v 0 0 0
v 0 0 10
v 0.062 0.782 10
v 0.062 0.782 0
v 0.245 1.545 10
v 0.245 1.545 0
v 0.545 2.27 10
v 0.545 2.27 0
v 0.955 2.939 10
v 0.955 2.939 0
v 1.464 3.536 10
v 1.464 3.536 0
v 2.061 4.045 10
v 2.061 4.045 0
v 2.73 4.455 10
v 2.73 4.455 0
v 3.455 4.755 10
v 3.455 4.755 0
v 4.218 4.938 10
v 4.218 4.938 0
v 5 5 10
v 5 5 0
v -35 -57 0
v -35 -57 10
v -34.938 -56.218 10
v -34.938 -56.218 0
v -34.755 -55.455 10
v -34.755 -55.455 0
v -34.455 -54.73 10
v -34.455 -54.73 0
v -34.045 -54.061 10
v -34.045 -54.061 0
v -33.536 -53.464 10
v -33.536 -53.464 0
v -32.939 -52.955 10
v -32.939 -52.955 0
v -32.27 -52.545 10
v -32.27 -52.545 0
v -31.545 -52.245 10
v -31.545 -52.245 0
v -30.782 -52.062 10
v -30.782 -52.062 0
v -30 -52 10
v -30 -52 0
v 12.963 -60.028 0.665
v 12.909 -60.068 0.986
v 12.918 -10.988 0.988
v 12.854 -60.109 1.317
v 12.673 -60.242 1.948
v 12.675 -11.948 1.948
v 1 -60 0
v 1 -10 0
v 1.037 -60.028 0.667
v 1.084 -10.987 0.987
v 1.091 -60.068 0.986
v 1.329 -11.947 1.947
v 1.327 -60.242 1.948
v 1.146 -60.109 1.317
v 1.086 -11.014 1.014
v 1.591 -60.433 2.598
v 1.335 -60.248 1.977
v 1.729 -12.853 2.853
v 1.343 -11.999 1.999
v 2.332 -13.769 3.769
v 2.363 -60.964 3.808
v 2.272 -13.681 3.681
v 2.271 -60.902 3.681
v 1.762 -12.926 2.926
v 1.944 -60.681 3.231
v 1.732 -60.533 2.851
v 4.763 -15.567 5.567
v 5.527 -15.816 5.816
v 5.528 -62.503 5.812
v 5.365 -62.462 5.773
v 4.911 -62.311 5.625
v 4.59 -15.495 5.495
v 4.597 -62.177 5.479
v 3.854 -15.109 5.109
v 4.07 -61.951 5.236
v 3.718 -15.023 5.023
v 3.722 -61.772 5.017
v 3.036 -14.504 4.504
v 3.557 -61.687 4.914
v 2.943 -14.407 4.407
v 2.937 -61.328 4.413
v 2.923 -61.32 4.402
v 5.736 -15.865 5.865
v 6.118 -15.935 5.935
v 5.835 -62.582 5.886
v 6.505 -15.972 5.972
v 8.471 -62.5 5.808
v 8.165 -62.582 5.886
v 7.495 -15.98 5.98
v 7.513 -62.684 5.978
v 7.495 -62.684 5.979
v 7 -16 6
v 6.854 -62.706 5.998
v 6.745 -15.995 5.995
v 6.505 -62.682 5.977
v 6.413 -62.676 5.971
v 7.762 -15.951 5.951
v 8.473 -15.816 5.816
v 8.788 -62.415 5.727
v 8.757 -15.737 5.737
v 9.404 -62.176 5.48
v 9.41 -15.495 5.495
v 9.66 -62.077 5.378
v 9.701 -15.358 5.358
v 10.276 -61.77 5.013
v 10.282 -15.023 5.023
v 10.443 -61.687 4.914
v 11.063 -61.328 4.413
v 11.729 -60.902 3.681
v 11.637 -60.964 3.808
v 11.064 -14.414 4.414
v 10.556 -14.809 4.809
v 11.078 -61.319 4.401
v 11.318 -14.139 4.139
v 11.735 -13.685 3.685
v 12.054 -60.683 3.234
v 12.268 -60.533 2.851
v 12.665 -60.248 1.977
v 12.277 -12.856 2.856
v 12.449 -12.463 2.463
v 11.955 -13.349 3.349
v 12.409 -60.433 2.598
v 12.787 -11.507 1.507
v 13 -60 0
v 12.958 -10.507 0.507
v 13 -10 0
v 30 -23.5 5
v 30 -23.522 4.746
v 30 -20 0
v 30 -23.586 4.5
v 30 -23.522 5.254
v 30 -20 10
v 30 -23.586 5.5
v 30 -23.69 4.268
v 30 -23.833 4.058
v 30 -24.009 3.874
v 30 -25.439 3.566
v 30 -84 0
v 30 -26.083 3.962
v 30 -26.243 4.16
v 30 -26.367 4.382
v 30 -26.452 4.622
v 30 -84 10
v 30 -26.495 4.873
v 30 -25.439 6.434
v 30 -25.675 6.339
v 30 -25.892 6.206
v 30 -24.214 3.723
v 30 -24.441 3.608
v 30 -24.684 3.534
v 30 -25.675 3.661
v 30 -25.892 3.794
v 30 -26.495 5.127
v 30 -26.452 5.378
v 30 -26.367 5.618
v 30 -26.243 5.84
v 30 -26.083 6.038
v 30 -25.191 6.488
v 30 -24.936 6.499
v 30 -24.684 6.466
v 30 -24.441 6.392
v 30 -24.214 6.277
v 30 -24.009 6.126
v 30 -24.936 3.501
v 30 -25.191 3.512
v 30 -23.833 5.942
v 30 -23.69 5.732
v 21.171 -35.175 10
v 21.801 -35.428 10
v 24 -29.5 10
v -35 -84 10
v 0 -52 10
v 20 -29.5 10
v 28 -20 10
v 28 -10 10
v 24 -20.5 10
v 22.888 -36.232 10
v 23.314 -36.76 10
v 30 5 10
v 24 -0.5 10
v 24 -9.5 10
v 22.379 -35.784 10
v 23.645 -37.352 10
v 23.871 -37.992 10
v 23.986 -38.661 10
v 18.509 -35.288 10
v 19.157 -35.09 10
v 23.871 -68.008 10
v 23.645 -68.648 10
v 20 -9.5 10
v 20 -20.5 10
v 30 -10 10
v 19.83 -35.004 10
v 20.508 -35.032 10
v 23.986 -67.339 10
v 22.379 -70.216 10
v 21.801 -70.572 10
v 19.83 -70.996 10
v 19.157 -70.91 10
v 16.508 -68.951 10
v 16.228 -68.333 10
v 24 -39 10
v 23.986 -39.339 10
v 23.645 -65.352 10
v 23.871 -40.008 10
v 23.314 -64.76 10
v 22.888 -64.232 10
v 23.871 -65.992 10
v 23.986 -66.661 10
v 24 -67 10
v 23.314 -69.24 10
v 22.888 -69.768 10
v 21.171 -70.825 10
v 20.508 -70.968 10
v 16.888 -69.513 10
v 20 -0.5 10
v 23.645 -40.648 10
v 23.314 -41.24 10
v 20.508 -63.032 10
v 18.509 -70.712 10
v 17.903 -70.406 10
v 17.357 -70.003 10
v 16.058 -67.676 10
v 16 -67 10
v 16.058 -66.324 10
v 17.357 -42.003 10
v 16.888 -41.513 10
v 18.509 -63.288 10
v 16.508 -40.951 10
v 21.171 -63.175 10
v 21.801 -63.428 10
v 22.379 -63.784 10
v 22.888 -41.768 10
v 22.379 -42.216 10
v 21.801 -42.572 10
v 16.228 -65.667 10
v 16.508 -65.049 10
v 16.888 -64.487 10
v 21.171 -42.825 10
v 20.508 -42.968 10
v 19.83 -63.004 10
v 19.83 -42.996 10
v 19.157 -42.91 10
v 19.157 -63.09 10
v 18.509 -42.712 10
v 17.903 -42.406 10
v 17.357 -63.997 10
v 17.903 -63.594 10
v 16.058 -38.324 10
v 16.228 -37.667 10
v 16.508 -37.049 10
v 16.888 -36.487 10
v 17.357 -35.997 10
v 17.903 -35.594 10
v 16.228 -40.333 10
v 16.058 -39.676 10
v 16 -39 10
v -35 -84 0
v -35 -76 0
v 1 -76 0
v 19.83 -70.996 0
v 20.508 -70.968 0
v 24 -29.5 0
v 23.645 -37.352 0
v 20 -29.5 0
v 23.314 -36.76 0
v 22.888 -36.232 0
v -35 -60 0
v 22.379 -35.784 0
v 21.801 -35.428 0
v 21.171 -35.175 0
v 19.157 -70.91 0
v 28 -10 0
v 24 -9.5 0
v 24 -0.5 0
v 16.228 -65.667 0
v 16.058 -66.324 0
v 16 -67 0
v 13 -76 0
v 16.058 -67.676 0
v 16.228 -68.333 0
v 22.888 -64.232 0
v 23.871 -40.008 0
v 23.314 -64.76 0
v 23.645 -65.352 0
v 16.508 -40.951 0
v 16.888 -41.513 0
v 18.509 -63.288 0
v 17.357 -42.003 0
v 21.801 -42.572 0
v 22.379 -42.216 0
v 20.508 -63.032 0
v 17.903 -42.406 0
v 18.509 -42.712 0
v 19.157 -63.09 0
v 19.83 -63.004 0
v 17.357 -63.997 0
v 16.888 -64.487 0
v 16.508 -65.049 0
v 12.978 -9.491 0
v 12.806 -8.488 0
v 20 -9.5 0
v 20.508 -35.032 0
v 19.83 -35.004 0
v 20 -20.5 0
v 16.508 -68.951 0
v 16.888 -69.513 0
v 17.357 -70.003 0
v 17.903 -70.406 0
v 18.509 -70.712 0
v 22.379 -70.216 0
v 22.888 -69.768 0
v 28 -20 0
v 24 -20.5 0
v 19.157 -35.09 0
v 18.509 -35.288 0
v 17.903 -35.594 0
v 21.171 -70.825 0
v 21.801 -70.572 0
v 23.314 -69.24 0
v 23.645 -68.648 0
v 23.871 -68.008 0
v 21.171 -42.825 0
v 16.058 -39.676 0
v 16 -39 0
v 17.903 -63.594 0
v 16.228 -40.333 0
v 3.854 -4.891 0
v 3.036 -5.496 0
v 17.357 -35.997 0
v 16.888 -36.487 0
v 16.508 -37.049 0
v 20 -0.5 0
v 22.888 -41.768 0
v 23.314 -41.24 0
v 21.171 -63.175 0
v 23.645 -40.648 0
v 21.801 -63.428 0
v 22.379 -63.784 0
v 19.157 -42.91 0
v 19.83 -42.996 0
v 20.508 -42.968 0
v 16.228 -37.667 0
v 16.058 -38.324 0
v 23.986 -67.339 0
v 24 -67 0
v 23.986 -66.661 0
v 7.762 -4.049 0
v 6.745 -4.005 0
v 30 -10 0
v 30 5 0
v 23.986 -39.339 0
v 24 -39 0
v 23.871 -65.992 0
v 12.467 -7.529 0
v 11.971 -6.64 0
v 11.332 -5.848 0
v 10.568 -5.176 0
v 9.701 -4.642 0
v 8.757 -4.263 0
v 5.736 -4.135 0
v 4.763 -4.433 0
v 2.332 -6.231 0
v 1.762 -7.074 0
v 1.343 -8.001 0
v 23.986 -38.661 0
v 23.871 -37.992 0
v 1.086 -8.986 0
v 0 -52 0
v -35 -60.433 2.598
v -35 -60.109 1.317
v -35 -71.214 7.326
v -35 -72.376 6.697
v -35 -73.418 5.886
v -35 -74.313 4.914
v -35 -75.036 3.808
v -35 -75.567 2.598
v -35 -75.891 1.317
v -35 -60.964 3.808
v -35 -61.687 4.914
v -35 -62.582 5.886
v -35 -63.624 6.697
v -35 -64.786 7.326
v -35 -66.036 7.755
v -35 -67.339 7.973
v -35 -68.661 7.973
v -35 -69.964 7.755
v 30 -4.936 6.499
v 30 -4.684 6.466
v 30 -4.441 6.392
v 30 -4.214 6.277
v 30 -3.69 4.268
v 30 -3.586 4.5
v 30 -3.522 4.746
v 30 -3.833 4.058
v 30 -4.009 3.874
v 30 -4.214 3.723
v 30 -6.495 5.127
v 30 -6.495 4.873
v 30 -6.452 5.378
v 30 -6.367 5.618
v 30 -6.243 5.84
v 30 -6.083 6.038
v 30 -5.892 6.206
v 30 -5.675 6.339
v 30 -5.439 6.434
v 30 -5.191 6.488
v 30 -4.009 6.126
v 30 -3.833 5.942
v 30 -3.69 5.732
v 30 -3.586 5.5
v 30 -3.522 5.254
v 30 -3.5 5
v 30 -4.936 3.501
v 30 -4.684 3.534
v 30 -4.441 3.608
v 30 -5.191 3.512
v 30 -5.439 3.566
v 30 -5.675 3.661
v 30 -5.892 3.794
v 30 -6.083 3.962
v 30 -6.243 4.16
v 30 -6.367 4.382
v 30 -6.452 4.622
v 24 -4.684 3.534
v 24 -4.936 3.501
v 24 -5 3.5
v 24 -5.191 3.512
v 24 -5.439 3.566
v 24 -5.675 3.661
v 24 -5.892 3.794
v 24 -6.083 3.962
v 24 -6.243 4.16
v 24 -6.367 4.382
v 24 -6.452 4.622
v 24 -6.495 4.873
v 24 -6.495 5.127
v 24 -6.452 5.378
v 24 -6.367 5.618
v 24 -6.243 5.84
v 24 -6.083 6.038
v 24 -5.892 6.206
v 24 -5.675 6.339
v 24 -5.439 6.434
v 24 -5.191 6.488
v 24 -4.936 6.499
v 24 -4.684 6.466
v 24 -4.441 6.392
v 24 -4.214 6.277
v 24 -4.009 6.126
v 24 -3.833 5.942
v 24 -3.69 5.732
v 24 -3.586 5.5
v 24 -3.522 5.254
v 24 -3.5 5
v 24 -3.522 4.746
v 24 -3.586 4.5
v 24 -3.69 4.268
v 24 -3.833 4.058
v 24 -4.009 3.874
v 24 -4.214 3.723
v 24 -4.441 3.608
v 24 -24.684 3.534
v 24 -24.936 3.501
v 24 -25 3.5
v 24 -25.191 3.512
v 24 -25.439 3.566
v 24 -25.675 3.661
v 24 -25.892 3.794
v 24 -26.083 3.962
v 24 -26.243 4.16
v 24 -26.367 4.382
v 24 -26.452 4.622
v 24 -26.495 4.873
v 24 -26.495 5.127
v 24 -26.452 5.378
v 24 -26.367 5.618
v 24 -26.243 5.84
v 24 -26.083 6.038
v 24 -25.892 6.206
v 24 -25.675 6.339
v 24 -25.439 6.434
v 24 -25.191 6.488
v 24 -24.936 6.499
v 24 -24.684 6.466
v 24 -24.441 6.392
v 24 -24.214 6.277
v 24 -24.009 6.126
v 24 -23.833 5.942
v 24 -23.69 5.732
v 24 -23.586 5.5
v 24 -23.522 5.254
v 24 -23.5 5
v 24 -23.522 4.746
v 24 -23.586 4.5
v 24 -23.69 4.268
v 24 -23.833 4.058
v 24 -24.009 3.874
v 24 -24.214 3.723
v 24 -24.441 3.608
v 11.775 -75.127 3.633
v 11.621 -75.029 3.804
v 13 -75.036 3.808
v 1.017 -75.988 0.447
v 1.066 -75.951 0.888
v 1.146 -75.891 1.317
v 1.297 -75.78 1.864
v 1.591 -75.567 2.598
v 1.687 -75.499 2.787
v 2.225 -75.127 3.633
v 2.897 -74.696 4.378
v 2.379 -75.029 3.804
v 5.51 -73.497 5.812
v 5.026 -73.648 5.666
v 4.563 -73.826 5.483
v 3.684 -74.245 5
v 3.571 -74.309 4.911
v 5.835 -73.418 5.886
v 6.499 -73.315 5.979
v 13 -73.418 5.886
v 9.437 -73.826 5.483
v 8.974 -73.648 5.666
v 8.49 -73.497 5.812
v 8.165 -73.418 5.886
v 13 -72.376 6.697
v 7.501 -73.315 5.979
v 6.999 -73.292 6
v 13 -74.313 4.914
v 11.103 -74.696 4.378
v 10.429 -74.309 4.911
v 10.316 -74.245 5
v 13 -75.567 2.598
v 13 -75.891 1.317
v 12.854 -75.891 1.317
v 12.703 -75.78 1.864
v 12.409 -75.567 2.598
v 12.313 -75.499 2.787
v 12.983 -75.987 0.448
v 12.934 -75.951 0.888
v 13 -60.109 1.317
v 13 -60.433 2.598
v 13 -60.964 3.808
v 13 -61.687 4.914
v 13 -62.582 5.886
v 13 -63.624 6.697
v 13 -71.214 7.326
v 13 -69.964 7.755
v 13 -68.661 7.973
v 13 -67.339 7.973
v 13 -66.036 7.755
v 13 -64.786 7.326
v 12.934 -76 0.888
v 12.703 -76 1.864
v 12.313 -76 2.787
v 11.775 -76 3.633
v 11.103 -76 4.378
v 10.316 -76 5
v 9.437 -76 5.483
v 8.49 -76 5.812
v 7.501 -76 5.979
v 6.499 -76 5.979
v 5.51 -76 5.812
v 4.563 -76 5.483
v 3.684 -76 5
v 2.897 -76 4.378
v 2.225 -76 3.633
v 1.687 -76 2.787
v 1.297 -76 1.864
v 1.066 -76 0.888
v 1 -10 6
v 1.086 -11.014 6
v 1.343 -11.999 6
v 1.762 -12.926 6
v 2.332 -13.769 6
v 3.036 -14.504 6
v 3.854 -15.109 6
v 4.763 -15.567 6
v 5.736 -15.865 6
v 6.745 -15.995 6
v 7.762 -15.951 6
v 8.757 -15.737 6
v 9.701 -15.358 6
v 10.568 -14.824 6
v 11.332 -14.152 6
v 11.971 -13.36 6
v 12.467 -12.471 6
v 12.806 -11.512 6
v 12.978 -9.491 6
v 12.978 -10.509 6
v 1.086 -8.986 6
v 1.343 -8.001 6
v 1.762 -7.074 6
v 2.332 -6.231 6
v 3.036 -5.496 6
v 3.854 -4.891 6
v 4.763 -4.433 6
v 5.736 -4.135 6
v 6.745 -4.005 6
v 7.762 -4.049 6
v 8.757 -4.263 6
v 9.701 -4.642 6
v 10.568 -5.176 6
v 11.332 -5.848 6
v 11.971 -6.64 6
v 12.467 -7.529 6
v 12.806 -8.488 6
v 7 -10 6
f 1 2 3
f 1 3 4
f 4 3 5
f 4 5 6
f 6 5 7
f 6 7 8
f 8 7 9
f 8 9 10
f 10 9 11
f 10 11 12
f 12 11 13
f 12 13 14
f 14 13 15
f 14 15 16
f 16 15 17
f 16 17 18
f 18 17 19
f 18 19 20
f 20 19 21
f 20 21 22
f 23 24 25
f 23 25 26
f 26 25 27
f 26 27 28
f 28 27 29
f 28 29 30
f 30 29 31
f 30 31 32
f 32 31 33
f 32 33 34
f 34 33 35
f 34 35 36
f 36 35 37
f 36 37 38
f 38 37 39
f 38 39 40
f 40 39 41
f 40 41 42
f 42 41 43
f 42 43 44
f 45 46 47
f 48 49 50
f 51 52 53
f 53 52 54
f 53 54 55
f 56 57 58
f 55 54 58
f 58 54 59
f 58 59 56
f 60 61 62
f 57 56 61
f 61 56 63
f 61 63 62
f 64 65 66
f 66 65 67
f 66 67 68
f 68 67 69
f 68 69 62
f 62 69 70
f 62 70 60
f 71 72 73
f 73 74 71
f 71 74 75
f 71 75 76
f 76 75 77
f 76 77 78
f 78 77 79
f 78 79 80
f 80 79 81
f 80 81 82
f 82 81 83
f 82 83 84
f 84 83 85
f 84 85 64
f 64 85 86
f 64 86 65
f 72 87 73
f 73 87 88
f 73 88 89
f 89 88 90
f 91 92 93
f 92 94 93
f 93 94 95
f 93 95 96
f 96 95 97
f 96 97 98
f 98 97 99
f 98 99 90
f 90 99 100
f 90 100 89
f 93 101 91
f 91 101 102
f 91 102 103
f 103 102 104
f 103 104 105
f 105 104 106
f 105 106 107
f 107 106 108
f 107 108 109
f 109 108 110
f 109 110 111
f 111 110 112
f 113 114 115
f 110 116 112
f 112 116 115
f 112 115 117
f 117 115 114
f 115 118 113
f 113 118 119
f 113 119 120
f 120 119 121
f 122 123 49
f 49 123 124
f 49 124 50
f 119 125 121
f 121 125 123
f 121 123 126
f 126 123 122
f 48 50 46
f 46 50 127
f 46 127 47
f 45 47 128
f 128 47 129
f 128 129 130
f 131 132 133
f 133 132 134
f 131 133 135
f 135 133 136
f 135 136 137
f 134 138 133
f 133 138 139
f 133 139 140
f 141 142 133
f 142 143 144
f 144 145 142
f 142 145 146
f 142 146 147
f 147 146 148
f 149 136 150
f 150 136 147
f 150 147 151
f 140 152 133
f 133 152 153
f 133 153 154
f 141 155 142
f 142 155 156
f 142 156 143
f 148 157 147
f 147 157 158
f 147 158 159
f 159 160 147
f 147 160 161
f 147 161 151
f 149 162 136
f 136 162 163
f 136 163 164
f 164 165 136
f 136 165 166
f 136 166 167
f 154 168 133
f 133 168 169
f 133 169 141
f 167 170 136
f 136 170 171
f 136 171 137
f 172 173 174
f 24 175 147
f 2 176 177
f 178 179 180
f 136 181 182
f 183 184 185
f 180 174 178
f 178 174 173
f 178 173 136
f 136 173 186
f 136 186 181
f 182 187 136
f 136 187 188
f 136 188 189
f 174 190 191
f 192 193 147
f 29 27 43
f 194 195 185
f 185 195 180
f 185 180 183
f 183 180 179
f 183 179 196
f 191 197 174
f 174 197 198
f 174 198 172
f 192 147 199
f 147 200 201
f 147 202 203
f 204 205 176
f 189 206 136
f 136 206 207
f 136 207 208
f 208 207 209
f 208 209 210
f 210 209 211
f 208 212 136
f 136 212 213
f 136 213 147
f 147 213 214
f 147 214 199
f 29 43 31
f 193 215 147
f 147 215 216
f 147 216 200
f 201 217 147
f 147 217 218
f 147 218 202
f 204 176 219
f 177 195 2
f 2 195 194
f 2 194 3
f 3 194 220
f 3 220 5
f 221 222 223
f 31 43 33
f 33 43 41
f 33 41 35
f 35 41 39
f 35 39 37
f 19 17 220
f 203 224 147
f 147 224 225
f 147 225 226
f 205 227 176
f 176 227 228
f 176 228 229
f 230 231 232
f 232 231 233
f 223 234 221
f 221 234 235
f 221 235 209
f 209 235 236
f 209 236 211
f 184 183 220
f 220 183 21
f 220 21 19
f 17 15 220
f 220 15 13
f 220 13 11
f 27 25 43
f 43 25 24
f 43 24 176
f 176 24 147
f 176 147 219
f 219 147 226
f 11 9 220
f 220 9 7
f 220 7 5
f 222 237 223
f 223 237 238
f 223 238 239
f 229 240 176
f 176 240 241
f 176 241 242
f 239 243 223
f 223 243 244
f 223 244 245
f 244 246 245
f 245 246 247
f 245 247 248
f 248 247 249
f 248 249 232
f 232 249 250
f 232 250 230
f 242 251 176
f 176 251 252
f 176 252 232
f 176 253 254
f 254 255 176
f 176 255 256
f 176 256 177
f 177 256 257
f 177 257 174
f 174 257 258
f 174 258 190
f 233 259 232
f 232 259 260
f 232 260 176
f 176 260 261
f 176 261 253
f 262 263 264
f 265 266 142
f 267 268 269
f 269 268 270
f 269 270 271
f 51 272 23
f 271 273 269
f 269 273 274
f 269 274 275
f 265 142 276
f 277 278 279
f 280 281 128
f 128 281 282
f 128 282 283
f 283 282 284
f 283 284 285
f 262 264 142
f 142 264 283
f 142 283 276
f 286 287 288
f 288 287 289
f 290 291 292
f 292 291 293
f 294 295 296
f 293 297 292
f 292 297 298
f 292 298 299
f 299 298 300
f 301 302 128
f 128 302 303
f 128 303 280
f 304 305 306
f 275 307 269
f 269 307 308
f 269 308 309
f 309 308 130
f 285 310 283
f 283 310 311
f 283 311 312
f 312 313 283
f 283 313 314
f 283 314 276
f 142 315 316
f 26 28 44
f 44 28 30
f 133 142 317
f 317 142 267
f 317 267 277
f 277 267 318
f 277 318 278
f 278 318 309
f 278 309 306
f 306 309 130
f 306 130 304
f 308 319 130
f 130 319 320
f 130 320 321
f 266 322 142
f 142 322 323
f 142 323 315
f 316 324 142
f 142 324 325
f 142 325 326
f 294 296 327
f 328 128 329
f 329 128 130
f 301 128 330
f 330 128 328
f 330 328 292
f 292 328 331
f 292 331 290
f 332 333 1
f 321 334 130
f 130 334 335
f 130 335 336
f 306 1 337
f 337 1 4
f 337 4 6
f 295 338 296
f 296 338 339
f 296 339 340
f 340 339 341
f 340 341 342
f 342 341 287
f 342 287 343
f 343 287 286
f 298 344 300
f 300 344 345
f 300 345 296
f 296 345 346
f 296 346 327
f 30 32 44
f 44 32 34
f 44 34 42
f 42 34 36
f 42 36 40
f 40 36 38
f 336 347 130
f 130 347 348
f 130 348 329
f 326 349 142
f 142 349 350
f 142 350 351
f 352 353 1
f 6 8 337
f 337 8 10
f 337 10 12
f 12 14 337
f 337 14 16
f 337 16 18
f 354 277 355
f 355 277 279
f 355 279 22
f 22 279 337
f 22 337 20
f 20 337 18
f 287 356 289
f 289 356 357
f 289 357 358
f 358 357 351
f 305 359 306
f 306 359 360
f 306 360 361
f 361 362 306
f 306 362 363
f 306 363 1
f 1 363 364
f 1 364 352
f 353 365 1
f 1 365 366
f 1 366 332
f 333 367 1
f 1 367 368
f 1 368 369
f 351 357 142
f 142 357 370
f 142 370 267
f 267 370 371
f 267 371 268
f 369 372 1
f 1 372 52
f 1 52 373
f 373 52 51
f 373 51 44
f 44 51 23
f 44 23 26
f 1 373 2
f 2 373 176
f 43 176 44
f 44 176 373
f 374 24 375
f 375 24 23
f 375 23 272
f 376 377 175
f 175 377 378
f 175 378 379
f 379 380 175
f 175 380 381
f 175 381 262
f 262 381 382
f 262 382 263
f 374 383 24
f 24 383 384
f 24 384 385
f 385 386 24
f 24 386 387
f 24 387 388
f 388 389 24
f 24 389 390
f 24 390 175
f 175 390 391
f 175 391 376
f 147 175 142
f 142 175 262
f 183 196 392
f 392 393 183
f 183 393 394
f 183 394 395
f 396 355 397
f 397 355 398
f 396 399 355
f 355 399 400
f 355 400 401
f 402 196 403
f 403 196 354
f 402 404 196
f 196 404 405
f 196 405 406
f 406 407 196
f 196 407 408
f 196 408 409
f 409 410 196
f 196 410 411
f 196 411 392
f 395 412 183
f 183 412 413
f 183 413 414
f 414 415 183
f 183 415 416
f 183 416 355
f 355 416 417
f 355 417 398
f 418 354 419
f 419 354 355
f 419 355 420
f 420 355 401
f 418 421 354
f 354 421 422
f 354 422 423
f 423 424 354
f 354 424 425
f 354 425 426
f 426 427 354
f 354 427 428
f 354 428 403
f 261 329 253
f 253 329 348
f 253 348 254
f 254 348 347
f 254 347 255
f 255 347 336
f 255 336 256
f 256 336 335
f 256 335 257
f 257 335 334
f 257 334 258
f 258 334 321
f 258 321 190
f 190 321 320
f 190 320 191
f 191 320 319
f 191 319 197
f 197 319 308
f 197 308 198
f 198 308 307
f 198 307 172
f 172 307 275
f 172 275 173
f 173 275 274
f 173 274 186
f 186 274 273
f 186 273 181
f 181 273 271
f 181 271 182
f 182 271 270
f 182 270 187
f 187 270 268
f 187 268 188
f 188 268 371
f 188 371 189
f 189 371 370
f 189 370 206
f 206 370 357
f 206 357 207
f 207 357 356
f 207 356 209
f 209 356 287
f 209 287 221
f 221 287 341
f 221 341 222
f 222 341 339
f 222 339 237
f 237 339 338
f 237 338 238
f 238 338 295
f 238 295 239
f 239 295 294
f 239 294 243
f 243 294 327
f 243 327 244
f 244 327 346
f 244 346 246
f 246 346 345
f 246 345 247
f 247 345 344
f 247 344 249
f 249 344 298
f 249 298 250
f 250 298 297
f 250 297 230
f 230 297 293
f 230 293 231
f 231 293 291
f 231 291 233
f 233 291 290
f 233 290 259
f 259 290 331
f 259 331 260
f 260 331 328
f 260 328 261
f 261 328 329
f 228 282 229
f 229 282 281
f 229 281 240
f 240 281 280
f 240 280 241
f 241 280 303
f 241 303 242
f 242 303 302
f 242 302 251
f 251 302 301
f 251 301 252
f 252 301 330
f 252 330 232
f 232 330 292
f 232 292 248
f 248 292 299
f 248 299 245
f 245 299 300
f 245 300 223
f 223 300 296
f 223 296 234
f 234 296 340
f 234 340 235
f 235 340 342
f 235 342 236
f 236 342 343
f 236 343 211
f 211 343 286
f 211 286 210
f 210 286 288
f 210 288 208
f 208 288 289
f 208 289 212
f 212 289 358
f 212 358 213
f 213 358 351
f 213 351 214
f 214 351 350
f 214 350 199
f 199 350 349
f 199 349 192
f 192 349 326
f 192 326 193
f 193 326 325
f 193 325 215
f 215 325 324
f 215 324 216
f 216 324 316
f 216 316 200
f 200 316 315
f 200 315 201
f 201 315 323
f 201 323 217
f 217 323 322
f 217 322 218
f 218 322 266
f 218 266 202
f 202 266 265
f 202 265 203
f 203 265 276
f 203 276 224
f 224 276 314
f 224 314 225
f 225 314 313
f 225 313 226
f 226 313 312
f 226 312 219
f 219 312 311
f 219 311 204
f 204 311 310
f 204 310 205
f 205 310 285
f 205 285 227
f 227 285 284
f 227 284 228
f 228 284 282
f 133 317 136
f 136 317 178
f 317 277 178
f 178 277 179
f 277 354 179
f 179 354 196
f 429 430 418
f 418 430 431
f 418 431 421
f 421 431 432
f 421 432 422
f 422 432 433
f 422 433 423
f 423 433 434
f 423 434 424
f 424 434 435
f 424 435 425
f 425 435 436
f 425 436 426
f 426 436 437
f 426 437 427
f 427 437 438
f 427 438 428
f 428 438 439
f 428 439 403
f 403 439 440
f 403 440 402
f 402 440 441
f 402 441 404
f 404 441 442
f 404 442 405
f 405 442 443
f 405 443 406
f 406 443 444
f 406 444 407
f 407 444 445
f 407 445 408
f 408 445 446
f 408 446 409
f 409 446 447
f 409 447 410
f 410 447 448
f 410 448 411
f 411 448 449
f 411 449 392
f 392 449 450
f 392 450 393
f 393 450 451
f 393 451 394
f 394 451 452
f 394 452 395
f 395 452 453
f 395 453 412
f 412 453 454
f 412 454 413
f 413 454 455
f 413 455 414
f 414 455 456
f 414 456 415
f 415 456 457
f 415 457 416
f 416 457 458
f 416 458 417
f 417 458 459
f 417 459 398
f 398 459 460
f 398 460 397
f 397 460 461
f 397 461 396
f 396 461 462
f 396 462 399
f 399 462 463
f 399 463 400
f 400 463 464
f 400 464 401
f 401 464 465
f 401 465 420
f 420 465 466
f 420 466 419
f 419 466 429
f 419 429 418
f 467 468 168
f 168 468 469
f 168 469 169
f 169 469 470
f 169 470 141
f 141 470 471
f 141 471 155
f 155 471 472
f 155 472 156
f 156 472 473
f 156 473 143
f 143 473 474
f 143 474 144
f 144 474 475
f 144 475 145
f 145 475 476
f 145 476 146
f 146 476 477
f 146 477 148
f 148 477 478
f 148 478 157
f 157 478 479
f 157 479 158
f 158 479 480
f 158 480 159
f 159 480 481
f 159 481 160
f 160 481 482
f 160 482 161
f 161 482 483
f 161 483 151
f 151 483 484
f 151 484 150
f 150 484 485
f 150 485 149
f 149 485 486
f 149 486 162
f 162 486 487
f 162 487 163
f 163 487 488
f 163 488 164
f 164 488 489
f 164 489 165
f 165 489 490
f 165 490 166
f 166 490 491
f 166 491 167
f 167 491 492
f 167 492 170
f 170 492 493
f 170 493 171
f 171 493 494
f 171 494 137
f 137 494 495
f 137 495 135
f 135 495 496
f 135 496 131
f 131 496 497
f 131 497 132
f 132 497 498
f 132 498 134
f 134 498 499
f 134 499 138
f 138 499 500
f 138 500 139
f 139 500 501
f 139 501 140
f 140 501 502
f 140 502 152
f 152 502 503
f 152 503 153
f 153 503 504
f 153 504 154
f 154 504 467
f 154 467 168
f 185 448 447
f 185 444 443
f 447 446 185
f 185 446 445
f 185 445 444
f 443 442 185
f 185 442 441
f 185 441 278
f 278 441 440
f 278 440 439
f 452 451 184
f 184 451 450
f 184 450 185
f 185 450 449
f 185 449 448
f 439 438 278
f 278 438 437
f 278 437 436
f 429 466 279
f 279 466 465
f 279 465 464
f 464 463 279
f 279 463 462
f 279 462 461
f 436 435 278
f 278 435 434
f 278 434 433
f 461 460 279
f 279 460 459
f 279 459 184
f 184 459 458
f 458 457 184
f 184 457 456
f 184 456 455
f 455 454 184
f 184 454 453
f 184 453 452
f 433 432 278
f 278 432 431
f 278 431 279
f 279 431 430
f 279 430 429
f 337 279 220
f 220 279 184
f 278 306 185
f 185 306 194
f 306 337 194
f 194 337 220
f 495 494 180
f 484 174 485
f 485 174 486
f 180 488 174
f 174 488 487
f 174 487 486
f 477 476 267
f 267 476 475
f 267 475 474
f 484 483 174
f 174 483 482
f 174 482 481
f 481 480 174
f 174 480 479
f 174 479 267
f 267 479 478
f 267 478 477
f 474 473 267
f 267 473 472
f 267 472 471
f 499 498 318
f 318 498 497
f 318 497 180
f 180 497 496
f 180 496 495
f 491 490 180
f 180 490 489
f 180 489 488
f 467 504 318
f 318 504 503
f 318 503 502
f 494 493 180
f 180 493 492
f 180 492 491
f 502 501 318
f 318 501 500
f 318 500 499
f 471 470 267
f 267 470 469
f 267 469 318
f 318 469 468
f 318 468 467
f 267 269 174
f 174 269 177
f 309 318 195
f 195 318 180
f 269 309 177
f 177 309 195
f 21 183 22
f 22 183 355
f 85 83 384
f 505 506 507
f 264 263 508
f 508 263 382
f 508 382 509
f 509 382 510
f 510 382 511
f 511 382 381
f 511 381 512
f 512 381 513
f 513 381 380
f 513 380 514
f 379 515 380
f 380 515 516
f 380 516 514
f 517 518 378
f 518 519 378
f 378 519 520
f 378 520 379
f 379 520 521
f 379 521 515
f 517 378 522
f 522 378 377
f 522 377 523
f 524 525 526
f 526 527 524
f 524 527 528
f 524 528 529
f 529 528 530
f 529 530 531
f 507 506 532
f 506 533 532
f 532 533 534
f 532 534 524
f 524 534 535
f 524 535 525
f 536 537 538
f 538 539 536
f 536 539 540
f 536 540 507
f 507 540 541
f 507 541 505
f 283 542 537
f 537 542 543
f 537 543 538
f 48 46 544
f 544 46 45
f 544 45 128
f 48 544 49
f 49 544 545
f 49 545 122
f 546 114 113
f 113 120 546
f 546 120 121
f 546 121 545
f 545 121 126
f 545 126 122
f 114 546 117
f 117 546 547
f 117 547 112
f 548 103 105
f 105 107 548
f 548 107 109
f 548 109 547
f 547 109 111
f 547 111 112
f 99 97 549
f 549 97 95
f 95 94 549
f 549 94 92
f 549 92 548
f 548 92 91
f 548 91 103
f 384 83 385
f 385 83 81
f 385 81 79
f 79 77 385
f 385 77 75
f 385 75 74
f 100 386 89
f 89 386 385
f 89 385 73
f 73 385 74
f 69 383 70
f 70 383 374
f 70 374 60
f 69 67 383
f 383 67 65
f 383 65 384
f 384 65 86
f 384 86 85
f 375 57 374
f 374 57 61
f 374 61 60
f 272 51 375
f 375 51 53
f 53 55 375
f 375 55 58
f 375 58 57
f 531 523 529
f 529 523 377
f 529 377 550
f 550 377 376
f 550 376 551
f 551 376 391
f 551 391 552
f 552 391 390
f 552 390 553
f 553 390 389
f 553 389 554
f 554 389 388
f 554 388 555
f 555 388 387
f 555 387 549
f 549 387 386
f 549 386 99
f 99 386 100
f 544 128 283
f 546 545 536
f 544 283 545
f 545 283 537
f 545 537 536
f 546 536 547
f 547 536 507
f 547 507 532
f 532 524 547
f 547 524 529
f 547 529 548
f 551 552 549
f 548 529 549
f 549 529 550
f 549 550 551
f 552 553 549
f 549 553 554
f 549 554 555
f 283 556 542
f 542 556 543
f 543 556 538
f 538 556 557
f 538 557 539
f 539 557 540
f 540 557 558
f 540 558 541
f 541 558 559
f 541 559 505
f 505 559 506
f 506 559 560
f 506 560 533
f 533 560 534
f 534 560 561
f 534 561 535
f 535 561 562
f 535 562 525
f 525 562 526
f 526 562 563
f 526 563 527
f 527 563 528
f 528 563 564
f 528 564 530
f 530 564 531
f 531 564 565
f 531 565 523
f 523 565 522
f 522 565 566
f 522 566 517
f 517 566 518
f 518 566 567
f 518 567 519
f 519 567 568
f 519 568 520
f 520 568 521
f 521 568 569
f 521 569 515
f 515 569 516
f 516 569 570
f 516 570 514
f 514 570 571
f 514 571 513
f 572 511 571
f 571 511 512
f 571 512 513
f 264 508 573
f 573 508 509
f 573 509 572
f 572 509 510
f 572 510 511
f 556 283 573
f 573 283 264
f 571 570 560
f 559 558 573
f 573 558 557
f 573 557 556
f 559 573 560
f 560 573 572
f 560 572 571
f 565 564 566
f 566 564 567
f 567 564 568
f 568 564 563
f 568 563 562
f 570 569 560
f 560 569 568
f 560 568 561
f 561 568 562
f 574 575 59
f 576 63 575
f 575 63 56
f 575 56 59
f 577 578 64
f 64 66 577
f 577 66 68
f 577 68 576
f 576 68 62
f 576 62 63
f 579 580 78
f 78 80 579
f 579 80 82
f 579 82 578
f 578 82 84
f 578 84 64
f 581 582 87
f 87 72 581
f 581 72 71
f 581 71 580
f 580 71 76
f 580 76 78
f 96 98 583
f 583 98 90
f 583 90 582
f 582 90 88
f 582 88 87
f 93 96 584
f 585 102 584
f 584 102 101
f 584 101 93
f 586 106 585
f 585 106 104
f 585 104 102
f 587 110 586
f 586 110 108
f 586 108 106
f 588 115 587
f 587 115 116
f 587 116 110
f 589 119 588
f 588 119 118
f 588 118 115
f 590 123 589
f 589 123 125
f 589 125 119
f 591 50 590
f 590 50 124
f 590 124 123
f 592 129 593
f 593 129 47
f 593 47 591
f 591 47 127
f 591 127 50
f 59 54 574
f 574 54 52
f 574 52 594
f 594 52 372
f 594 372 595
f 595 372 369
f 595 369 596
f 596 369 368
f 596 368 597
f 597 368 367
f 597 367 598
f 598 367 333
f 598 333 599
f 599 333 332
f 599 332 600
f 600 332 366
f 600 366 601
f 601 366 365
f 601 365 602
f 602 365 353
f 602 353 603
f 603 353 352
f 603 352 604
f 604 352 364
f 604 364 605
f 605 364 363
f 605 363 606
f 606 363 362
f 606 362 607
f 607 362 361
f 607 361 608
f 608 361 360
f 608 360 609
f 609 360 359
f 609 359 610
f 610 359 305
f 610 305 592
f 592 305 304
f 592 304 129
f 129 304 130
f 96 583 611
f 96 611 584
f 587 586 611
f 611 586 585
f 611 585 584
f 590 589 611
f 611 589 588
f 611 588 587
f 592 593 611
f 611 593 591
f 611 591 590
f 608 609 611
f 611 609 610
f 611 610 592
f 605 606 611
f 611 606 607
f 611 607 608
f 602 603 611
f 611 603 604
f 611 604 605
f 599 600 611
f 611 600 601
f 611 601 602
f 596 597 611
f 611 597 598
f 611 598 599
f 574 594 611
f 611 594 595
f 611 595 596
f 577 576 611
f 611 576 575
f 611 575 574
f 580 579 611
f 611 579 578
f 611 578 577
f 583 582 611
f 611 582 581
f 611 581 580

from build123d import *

# Parameters (mm, degrees)
SKETCH1_R           = 4
BOSS_EXTRUDE1_DEPTH = 10
SKETCH2_W           = 2
SKETCH2_H           = 10
CUT_EXTRUDE1_DEPTH  = 10
SKETCH3_R           = 1.5
CUT_EXTRUDE2_DEPTH  = 10
SKETCH4_W           = 4
SKETCH4_H           = 9
CUT_EXTRUDE3_DEPTH  = 10
SKETCH5_W           = 30
SKETCH5_H           = 10
BOSS_EXTRUDE2_DEPTH = 5
SKETCH6_R           = 8
CUT_EXTRUDE4_DEPTH  = 48
SKETCH7_R           = 6
CUT_EXTRUDE5_DEPTH  = 65
SKETCH8_R           = 6
CUT_EXTRUDE6_DEPTH  = 16
BOSS_EXTRUDE3_DEPTH = 15
SKETCH10_R          = 6
CUT_EXTRUDE7_DEPTH  = 6
FILLET1_R           = 5
FILLET2_R           = 5


with BuildPart() as part:
    # Sketch1 → Boss-Extrude1 (new body)
    with BuildSketch(Plane.XY):
        Polygon((0, 0), (30, 0), (30, -84), (-35, -84), (-35, -52), (0, -52), align=None)
        with Locations((20, -39)):
            Circle(SKETCH1_R, mode=Mode.SUBTRACT)
        with Locations((20, -67)):
            Circle(SKETCH1_R, mode=Mode.SUBTRACT)
    extrude(amount=BOSS_EXTRUDE1_DEPTH)

    # Sketch2 → Cut-Extrude1 (cut)
    with BuildSketch(Plane.XY.offset(10)):
        with Locations((29, -15)):
            Rectangle(SKETCH2_W, SKETCH2_H)
    extrude(amount=-CUT_EXTRUDE1_DEPTH, mode=Mode.SUBTRACT)

    # Sketch3 → Cut-Extrude2 (cut)
    with BuildSketch(Plane(origin=(30, 0, 0), x_dir=(0, 0, -1), z_dir=(1, 0, 0))):
        with Locations(Location((-5, -5, 0), (0, 0, 90))):
            Circle(SKETCH3_R)
        with Locations(Location((-5, -25, 0), (0, 0, 90))):
            Circle(SKETCH3_R)
    extrude(amount=-CUT_EXTRUDE2_DEPTH, mode=Mode.SUBTRACT)

    # Sketch4 → Cut-Extrude3 (cut)
    with BuildSketch(Plane.XY.offset(10)):
        with Locations((22, -5)):
            Rectangle(SKETCH4_W, SKETCH4_H)
        with Locations((22, -25)):
            Rectangle(SKETCH4_W, SKETCH4_H)
    extrude(amount=-CUT_EXTRUDE3_DEPTH, mode=Mode.SUBTRACT)

    # Sketch5 → Boss-Extrude2 (add)
    with BuildSketch(Plane(origin=(0, 0, 0), x_dir=(1, 0, 0), z_dir=(0, 1, 0))):
        with Locations((15, -5)):
            Rectangle(SKETCH5_W, SKETCH5_H)
    extrude(amount=BOSS_EXTRUDE2_DEPTH)

    # Sketch6 → Cut-Extrude4 (cut)
    with BuildSketch(Plane.ZY.offset(35)):
        with Locations((0, -68)):
            Circle(SKETCH6_R)
    extrude(amount=-CUT_EXTRUDE4_DEPTH, mode=Mode.SUBTRACT)

    # Sketch7 → Cut-Extrude5 (cut)
    with BuildSketch(Plane(origin=(0, 5, 0), x_dir=(1, 0, 0), z_dir=(0, 1, 0))):
        with Locations((7, 0)):
            Circle(SKETCH7_R)
    extrude(amount=-CUT_EXTRUDE5_DEPTH, mode=Mode.SUBTRACT)

    # Sketch8 → Cut-Extrude6 (cut)
    with BuildSketch(Plane(origin=(0, -60, 0), x_dir=(1, 0, 0), z_dir=(0, 1, 0))):
        with Locations((7, 0)):
            Circle(SKETCH8_R)
    extrude(amount=-CUT_EXTRUDE6_DEPTH, mode=Mode.SUBTRACT)

    # Sketch9 → Boss-Extrude3 (add)
    with BuildSketch(Plane(origin=(0, 5, 0), x_dir=(1, 0, 0), z_dir=(0, 1, 0))):
        with BuildLine():
            Line((13, 0), (1, 0))
            ThreePointArc((1, 0), (7, -6), (13, 0))
        make_face()
    extrude(amount=-BOSS_EXTRUDE3_DEPTH)

    # Sketch10 → Cut-Extrude7 (cut)
    with BuildSketch(Plane(origin=(0, 0, 0), x_dir=(-1, 0, 0), z_dir=(0, 0, -1))):
        with Locations((-7, -10)):
            Circle(SKETCH10_R)
    extrude(amount=-CUT_EXTRUDE7_DEPTH, mode=Mode.SUBTRACT)

    # Fillet1
    fillet1_edges = [part.edges().sort_by_distance(p)[0] for p in [
        (-35, -52, 5),
    ]]
    fillet(fillet1_edges, radius=FILLET1_R)

    # Fillet2
    fillet2_edges = [part.edges().sort_by_distance(p)[0] for p in [
        (0, 5, 5),
    ]]
    fillet(fillet2_edges, radius=FILLET2_R)


solid = part.part
